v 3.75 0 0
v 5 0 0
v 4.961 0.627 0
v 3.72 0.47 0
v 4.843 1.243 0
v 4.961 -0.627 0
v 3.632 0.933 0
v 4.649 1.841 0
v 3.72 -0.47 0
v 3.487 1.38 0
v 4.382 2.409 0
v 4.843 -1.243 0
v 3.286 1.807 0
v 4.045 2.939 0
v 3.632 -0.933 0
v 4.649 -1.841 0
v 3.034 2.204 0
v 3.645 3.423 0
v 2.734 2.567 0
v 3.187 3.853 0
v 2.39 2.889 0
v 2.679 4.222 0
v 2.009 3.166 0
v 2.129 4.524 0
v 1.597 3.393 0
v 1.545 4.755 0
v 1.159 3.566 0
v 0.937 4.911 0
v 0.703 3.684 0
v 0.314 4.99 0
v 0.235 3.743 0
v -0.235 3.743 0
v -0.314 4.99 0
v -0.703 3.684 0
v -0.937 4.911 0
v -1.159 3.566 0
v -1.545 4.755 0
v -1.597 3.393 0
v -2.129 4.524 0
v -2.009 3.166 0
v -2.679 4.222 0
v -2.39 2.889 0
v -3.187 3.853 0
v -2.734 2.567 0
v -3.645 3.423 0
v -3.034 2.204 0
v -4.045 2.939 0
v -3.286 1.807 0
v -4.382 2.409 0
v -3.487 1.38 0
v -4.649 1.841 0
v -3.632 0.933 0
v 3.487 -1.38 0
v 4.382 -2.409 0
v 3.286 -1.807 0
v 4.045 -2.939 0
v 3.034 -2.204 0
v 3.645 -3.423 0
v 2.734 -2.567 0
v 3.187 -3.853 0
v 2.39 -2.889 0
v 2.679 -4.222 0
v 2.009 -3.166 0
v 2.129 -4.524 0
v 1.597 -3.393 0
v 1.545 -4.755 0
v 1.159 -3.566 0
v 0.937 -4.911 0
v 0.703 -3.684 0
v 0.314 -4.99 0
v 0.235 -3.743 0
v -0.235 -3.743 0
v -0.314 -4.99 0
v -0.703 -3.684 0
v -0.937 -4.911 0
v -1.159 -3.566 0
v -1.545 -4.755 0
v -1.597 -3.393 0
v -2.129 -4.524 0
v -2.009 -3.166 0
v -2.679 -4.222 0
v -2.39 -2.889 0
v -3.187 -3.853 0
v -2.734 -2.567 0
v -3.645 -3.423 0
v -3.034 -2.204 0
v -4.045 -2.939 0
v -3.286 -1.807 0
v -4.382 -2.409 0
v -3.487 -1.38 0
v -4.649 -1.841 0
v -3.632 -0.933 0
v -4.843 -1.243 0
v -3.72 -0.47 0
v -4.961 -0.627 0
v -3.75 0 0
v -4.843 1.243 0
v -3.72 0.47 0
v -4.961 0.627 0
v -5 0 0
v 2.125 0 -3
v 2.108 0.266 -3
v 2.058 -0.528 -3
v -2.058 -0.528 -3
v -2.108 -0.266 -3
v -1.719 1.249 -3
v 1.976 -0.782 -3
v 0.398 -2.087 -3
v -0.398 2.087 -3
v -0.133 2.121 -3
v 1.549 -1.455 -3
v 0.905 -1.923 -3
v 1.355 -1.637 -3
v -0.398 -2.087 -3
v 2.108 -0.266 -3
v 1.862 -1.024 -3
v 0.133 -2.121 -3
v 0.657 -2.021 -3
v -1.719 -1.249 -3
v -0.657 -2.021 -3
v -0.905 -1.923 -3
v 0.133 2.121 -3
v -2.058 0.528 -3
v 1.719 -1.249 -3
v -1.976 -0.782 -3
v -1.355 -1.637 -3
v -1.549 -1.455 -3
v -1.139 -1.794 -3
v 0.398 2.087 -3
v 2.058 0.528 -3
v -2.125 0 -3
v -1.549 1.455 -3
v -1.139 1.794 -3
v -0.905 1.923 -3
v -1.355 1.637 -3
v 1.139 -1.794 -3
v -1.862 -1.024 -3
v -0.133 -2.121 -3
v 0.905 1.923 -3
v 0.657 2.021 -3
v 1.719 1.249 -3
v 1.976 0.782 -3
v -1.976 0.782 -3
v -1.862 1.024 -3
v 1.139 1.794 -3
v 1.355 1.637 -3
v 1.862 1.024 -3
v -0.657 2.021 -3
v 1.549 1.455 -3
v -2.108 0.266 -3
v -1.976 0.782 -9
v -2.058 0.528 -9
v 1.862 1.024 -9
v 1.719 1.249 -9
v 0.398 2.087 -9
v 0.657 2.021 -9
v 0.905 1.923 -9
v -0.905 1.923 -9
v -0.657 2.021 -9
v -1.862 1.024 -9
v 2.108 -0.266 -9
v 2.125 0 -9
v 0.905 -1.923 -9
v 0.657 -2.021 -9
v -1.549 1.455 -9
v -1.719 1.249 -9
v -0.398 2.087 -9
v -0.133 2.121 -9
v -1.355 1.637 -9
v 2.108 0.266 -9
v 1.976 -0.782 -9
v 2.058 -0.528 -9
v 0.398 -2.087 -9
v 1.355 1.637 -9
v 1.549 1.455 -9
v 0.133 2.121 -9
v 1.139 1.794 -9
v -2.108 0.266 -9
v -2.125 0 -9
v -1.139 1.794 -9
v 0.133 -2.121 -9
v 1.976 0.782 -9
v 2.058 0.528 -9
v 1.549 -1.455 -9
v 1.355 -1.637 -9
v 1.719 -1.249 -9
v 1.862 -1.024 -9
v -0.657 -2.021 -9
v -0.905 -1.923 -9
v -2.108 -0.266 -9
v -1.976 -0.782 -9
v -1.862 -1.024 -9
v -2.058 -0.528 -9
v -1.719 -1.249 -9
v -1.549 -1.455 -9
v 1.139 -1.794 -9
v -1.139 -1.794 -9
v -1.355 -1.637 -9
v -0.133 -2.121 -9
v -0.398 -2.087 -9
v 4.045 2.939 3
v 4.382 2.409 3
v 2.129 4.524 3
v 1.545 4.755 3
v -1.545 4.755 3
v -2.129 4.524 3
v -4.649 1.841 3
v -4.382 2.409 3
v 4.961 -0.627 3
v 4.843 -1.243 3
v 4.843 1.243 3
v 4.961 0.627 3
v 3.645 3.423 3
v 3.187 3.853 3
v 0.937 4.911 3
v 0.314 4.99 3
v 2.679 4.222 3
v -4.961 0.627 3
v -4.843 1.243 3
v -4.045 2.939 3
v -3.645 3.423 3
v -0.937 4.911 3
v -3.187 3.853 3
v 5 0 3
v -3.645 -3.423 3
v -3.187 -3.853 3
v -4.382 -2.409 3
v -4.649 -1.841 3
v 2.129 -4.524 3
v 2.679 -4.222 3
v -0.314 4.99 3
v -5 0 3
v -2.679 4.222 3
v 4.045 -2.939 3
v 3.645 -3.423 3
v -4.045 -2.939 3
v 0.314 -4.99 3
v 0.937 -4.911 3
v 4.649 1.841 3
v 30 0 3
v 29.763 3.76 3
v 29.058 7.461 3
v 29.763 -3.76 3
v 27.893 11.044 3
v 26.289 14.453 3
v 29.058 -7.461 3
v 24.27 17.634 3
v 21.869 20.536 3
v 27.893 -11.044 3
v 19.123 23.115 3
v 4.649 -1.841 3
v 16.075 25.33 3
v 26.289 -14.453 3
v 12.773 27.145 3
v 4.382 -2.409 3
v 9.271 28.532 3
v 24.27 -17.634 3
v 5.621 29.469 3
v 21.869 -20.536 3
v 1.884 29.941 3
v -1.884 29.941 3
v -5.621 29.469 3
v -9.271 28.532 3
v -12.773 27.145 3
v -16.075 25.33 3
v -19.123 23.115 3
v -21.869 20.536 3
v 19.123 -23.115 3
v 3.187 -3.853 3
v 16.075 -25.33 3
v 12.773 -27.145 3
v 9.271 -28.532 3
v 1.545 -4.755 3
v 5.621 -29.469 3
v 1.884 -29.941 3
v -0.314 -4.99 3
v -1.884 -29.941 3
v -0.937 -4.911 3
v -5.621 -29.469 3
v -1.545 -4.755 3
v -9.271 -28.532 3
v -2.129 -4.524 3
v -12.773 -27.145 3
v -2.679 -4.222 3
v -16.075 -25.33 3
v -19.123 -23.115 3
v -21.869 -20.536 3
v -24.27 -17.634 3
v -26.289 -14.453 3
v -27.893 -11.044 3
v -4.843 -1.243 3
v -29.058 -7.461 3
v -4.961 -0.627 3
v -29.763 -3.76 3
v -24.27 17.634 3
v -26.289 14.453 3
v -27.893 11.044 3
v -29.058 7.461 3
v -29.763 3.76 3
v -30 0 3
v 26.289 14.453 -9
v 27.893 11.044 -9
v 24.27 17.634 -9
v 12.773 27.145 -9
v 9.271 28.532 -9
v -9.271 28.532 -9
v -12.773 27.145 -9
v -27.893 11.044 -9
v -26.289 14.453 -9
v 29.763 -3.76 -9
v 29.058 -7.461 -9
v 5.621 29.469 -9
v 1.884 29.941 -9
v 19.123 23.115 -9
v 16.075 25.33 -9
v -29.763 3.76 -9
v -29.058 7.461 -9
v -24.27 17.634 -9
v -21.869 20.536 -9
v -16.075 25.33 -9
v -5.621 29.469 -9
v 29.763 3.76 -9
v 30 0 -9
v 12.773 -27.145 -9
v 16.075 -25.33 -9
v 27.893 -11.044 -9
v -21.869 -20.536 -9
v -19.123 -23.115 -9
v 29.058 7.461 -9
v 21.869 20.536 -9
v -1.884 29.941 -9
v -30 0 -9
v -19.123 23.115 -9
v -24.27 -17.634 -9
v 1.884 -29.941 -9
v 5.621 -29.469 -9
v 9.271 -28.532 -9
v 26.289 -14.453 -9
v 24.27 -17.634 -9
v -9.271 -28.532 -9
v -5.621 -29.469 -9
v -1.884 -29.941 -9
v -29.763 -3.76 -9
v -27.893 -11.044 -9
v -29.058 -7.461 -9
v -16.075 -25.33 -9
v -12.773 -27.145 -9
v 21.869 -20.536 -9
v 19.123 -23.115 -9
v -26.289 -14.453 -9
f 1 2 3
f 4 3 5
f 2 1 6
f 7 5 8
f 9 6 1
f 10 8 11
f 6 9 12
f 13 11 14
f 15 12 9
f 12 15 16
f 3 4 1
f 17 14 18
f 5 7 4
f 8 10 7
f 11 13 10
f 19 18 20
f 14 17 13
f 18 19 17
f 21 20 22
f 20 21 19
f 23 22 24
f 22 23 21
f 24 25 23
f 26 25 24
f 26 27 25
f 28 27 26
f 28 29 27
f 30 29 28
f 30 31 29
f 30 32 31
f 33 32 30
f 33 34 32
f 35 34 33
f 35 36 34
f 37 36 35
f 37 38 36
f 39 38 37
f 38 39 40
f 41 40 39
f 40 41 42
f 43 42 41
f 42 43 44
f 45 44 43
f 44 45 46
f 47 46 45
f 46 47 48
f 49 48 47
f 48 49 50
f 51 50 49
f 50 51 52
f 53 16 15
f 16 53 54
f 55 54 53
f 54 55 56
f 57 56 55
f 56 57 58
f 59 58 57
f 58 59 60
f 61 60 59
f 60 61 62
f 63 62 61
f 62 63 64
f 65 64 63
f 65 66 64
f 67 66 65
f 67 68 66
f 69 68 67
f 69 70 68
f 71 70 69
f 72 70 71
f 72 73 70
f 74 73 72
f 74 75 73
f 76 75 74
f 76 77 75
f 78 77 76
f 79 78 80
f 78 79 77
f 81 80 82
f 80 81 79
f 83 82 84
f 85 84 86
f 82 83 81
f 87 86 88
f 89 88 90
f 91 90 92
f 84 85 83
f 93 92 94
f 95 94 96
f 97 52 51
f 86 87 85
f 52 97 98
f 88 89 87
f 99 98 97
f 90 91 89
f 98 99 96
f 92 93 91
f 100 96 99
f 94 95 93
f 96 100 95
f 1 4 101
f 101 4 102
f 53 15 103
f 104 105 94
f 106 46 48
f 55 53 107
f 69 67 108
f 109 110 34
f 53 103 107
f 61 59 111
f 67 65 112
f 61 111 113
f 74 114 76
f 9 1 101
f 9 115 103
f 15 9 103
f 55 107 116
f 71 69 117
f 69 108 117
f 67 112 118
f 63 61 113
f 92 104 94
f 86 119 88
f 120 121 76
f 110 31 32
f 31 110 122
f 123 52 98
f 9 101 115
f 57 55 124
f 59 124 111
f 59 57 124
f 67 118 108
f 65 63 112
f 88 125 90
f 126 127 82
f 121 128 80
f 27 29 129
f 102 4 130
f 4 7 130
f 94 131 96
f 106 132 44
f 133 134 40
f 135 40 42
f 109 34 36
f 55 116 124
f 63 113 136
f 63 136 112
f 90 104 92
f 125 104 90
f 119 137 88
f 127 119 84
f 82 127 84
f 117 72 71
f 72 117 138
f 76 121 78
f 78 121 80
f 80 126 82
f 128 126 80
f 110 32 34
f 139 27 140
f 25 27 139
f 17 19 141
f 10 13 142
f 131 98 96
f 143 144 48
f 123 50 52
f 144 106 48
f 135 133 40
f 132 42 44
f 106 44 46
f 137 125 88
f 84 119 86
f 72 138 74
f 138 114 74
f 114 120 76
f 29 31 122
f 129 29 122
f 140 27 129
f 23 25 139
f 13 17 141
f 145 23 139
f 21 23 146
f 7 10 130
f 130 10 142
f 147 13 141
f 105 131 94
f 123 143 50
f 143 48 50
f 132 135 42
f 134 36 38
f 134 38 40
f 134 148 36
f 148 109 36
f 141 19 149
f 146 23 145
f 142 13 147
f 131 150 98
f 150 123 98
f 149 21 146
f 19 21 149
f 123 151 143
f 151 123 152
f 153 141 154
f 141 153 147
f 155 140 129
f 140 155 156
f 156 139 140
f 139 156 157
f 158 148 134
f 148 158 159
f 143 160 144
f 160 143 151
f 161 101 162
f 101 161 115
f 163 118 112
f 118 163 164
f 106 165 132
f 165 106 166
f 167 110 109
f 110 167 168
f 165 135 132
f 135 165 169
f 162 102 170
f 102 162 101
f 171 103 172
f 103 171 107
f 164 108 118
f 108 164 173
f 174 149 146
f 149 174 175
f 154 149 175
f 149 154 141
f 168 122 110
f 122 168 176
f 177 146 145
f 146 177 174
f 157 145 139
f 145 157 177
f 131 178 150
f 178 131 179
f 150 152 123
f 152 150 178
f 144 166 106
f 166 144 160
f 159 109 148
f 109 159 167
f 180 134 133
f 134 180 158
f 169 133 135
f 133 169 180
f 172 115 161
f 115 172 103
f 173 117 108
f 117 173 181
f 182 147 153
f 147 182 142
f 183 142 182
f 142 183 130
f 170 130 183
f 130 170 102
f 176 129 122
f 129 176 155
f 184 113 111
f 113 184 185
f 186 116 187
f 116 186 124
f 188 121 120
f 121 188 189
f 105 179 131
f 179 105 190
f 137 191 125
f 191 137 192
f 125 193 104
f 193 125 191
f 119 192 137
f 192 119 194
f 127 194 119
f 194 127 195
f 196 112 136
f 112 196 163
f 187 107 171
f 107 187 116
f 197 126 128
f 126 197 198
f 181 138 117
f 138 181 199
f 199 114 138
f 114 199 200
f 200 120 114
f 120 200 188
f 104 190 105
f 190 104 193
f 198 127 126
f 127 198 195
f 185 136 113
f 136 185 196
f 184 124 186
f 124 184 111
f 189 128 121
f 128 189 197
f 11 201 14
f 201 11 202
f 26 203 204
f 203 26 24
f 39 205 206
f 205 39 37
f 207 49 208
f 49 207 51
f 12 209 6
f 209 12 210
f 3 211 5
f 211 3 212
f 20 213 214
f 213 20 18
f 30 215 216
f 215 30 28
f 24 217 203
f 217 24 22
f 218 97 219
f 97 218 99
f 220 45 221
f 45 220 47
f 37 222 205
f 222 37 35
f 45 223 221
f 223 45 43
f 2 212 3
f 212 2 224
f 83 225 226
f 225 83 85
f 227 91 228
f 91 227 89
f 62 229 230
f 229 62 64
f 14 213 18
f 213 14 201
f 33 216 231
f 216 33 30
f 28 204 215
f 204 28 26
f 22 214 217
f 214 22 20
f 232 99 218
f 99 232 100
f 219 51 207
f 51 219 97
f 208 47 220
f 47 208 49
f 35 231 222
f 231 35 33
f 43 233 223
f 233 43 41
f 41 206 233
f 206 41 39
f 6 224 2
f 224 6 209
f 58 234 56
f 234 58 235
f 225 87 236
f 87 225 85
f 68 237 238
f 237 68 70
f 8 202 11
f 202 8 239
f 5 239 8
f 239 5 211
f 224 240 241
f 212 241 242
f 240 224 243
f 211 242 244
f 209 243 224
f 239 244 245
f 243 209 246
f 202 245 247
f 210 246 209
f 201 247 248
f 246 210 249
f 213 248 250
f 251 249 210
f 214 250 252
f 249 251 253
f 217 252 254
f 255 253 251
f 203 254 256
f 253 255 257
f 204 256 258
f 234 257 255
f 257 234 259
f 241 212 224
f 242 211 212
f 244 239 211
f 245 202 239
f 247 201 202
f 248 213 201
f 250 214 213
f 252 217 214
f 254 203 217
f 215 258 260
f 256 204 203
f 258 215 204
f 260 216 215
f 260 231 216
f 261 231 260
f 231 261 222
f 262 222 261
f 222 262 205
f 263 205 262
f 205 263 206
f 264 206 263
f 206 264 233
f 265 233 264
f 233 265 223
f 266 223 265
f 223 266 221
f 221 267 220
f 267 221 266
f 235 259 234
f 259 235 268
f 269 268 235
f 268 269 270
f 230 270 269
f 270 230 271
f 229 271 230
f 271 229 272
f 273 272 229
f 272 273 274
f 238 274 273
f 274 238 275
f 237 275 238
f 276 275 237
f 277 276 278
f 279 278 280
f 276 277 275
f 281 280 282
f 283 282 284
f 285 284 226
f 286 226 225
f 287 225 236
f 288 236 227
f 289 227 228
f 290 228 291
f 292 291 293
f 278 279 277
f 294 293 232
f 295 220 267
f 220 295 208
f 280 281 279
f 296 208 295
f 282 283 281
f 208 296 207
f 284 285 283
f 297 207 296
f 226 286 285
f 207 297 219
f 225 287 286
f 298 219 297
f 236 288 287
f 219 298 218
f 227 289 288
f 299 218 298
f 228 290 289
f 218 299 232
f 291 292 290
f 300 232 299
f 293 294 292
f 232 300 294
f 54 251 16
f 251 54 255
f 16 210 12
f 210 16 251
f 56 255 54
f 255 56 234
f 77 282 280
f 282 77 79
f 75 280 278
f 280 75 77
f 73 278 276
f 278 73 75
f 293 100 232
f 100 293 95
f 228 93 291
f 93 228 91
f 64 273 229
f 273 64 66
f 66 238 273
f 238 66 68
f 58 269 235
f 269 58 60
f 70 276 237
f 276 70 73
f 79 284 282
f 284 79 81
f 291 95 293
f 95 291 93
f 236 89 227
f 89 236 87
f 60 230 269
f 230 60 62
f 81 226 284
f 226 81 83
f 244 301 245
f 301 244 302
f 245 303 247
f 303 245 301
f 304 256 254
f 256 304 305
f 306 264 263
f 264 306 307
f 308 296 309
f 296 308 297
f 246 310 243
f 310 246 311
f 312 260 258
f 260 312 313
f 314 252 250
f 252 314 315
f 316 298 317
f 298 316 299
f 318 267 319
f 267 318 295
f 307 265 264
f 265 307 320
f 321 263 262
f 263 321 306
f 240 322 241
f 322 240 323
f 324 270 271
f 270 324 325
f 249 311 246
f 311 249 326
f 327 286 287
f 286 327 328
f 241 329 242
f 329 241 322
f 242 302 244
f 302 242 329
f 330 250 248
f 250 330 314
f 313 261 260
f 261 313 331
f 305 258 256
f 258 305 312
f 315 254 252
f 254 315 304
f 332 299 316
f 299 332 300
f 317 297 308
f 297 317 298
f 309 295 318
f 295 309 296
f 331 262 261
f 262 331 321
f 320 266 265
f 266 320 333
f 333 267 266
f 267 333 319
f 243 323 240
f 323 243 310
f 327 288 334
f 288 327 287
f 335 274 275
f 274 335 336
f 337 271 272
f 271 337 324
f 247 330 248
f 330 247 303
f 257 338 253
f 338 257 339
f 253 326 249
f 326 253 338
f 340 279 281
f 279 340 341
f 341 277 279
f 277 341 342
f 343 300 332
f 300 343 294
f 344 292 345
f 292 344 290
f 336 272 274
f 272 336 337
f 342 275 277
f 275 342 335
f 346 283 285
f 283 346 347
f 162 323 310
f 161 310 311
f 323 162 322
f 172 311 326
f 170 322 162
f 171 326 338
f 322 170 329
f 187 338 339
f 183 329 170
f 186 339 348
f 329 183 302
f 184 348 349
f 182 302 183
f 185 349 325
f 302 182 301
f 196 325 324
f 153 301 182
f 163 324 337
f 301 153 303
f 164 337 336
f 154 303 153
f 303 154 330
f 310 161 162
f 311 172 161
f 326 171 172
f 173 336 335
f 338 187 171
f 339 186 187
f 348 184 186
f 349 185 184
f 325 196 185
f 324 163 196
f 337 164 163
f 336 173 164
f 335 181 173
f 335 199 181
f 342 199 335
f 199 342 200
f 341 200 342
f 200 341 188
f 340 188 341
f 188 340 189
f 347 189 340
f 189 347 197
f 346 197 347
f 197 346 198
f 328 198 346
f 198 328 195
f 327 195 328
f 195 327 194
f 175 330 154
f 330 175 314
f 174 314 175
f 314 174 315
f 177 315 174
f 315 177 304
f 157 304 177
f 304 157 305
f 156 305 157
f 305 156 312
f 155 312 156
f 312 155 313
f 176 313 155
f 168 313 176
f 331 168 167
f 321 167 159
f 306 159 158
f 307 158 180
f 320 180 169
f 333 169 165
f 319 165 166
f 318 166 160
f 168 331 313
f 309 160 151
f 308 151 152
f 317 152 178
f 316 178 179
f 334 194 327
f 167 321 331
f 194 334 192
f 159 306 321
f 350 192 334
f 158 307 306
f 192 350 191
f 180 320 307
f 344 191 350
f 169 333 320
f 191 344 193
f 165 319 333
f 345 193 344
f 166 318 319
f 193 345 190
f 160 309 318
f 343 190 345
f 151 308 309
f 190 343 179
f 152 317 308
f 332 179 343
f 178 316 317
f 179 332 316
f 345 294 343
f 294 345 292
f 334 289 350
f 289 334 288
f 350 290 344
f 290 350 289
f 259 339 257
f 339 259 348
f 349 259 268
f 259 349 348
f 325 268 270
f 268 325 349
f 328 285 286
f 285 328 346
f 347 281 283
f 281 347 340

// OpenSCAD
$fn = 50;


difference() {
	union() {
		translate(v = [0, 0, -9.0000000000]) {
			cylinder(h = 12, r = 30.0000000000);
		}
	}
	union() {
		translate(v = [0, 0, 0]) {
			rotate(a = [0, 0, 0]) {
				difference() {
					union() {
						translate(v = [0, 0, -12.0000000000]) {
							cylinder(h = 12, r = 2.0000000000);
						}
						translate(v = [0, 0, -3]) {
							cylinder(h = 3, r1 = 2.1250000000, r2 = 3.7500000000);
						}
						translate(v = [0, 0, -12.0000000000]) {
							cylinder(h = 12, r = 2.1250000000);
						}
						translate(v = [0, 0, -12.0000000000]) {
							cylinder(h = 12, r = 2.0000000000);
						}
					}
					union();
				}
			}
		}
		#cylinder(h = 3, r = 5.0000000000);
	}
}
